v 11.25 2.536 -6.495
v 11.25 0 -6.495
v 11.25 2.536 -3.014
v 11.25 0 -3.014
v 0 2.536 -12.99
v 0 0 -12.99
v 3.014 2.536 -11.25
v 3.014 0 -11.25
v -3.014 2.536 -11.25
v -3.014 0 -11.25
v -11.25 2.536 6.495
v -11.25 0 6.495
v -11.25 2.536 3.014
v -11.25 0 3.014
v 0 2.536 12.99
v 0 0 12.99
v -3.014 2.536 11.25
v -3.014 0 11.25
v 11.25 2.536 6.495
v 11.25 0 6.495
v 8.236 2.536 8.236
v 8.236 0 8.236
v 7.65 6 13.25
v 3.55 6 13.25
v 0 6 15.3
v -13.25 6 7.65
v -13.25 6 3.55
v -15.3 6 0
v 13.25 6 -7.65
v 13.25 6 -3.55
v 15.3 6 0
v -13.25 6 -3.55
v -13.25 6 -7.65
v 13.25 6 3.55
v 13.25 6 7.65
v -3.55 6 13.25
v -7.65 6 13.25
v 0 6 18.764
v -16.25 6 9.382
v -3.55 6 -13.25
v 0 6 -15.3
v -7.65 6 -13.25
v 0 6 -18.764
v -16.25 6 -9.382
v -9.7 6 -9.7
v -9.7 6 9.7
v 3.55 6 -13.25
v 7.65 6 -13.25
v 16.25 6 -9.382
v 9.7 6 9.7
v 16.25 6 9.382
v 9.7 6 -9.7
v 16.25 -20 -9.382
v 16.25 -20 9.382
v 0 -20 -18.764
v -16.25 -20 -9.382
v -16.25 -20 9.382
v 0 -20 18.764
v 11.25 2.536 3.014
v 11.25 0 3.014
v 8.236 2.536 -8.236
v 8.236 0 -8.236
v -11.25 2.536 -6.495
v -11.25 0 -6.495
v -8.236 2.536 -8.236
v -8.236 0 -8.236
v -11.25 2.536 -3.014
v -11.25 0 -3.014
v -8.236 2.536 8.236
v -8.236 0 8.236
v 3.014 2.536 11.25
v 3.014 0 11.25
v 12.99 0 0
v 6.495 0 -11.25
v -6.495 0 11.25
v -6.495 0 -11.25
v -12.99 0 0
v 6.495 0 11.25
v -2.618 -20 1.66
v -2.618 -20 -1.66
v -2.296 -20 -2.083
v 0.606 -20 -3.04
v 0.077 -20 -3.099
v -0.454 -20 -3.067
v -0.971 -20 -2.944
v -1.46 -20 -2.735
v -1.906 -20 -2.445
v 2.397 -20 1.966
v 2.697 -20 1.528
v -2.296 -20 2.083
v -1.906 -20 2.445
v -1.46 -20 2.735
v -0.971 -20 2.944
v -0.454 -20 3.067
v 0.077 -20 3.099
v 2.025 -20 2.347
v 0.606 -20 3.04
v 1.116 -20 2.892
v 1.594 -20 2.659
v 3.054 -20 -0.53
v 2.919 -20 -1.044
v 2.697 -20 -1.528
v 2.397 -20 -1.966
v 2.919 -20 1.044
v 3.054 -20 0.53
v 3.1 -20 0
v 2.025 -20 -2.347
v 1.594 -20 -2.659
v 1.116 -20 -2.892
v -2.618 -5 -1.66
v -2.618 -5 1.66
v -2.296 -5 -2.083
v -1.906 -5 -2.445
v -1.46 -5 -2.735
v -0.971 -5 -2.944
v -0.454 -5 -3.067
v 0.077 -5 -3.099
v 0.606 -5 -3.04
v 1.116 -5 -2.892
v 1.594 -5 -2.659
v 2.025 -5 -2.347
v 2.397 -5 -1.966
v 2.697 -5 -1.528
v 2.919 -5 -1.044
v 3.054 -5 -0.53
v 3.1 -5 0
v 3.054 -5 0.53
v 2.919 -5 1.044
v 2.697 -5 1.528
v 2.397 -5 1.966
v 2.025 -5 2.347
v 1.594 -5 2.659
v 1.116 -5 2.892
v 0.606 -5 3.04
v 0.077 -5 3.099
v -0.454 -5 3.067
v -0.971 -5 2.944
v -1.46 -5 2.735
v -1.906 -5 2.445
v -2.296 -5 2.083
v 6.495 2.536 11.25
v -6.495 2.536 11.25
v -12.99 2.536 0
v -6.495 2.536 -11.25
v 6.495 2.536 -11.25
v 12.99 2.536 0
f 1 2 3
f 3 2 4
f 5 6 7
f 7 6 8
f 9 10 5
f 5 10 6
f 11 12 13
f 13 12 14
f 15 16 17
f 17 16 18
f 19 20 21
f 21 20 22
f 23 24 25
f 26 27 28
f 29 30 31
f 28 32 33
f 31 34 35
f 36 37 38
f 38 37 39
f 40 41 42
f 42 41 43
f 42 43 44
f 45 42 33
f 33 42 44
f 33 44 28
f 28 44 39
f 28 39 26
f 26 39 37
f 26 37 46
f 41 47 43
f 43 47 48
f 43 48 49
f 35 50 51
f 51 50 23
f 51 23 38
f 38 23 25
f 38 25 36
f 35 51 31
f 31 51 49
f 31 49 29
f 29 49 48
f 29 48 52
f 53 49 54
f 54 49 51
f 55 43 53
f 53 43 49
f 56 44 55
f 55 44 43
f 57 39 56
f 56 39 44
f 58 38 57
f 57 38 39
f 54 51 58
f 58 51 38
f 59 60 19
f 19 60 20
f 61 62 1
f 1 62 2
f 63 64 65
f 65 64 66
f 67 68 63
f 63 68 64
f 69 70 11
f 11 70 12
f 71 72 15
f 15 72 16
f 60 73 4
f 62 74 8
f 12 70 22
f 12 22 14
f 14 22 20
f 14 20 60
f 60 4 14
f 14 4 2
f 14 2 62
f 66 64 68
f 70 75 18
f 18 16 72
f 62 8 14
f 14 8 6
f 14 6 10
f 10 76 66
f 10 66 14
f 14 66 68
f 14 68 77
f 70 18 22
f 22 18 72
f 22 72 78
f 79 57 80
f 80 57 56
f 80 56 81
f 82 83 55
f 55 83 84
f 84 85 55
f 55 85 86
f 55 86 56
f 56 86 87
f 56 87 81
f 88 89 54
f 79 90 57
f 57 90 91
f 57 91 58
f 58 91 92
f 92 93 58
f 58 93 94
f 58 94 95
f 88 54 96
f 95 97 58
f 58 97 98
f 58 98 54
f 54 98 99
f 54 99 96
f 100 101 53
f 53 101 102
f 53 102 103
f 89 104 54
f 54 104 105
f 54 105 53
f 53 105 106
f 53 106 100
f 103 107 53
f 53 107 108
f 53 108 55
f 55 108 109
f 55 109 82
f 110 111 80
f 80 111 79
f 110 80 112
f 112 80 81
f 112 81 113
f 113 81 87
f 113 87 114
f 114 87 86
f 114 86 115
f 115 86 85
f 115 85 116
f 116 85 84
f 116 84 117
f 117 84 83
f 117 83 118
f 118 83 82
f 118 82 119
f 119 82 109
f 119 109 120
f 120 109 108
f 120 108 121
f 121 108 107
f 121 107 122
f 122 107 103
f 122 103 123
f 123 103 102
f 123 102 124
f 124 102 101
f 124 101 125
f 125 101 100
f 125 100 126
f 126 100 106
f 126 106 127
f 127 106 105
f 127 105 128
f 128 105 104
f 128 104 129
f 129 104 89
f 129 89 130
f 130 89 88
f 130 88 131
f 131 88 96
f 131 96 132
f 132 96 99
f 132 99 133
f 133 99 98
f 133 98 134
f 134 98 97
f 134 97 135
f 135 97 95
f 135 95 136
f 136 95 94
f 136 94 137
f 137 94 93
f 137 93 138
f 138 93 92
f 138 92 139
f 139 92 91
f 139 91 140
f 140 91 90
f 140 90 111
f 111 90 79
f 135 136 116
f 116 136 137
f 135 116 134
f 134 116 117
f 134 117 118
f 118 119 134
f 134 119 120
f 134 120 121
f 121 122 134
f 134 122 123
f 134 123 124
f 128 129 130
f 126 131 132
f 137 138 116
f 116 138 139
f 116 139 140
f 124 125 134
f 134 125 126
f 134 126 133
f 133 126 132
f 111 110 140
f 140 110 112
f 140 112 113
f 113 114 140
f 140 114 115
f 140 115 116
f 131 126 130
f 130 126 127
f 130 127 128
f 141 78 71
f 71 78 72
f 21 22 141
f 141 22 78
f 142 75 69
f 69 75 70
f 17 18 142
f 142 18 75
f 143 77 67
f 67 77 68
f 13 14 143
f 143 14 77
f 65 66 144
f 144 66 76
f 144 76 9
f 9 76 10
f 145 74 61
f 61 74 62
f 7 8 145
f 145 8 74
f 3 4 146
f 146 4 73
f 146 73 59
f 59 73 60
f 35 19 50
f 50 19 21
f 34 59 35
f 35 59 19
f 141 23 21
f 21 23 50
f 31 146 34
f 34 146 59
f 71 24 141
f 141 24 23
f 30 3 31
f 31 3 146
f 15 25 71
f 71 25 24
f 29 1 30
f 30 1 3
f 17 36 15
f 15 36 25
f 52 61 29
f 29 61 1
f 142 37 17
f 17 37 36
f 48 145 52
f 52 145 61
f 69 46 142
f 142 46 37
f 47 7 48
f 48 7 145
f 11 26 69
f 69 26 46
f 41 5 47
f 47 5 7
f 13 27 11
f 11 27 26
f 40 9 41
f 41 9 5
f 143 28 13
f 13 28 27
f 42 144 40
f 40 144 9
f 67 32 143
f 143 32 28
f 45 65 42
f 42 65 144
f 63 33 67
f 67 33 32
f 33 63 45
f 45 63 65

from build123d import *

# Parameters (mm, degrees)
BOSS_EXTRUDE1_DEPTH = 6
BOSS_EXTRUDE4_DEPTH = 20
CUT_EXTRUDE2_DEPTH  = 15
CUT_EXTRUDE3_DEPTH  = 6
CHAMFER2_SIZE       = 2
CHAMFER2_SIZE2      = 3.464101615


with BuildPart() as part:
    # Sketch1 → Boss-Extrude1 (new body)
    with BuildSketch(Plane(origin=(0, 0, 0), x_dir=(1, 0, 0), z_dir=(0, 1, 0))):
        Polygon((16.25, 9.381941874), (0, 18.763883749), (-16.25, 9.381941874), (-16.25, -9.381941874), (0, -18.763883749), (16.25, -9.381941874), align=None)
        Polygon((11.25, 6.495190528), (0, 12.990381057), (-11.25, 6.495190528), (-11.25, -6.495190528), (0, -12.990381057), (11.25, -6.495190528), align=None, mode=Mode.SUBTRACT)
    extrude(amount=BOSS_EXTRUDE1_DEPTH)

    # Sketch5 → Boss-Extrude4 (add)
    with BuildSketch(Plane.XZ):
        Polygon((16.25, 9.381941874), (0, 18.763883749), (-16.25, 9.381941874), (-16.25, -9.381941874), (0, -18.763883749), (16.25, -9.381941874), align=None)
    extrude(amount=BOSS_EXTRUDE4_DEPTH)

    # Sketch6 → Cut-Extrude2 (cut)
    with BuildSketch(Plane.XZ.offset(20)):
        with BuildLine():
            Line((-2.618090908, 1.66), (-2.618090908, -1.66))
            ThreePointArc((-2.618090908, -1.66), (3.1, 0), (-2.618090908, 1.66))
        make_face()
    extrude(amount=-CUT_EXTRUDE2_DEPTH, mode=Mode.SUBTRACT)

    # Sketch7 → Cut-Extrude3 (cut)
    with BuildSketch(Plane(origin=(0, 6, 0), x_dir=(1, 0, 0), z_dir=(0, 1, 0))):
        Polygon((-6.495190528, 11.25), (-12.990381057, 0), (-6.495190528, -11.25), (6.495190528, -11.25), (12.990381057, 0), (6.495190528, 11.25), align=None)
    extrude(amount=-CUT_EXTRUDE3_DEPTH, mode=Mode.SUBTRACT)

    # Chamfer2
    chamfer2_edges = [part.edges().sort_by_distance(p)[0] for p in [
        (4.754809472, 6, 11.25),
        (7.365381057, 6, 9.742785793),
        (11.25, 6, 4.754809472),
        (9.742785793, 6, -7.365381057),
        (-1.507214207, 6, -12.120190528),
        (-11.25, 6, -4.754809472),
        (-9.742785793, 6, 7.365381057),
        (1.507214207, 6, 12.120190528),
        (9.742785793, 6, 7.365381057),
        (-1.507214207, 6, 12.120190528),
        (-11.25, 6, 4.754809472),
        (-9.742785793, 6, -7.365381057),
        (1.507214207, 6, -12.120190528),
        (11.25, 6, -4.754809472),
        (12.120190528, 6, 1.507214207),
        (12.120190528, 6, -1.507214207),
        (7.365381057, 6, -9.742785793),
        (4.754809472, 6, -11.25),
        (-4.754809472, 6, -11.25),
        (-7.365381057, 6, -9.742785793),
        (-12.120190528, 6, -1.507214207),
        (-12.120190528, 6, 1.507214207),
        (-7.365381057, 6, 9.742785793),
        (-4.754809472, 6, 11.25),
    ]]
    chamfer2_side = [part.faces().sort_by_distance(p)[0] for p in [
        (7.87677715, 6, -13.642978223),
    ]]
    chamfer(chamfer2_edges, length=CHAMFER2_SIZE, length2=CHAMFER2_SIZE2, reference=chamfer2_side[0])


solid = part.part
